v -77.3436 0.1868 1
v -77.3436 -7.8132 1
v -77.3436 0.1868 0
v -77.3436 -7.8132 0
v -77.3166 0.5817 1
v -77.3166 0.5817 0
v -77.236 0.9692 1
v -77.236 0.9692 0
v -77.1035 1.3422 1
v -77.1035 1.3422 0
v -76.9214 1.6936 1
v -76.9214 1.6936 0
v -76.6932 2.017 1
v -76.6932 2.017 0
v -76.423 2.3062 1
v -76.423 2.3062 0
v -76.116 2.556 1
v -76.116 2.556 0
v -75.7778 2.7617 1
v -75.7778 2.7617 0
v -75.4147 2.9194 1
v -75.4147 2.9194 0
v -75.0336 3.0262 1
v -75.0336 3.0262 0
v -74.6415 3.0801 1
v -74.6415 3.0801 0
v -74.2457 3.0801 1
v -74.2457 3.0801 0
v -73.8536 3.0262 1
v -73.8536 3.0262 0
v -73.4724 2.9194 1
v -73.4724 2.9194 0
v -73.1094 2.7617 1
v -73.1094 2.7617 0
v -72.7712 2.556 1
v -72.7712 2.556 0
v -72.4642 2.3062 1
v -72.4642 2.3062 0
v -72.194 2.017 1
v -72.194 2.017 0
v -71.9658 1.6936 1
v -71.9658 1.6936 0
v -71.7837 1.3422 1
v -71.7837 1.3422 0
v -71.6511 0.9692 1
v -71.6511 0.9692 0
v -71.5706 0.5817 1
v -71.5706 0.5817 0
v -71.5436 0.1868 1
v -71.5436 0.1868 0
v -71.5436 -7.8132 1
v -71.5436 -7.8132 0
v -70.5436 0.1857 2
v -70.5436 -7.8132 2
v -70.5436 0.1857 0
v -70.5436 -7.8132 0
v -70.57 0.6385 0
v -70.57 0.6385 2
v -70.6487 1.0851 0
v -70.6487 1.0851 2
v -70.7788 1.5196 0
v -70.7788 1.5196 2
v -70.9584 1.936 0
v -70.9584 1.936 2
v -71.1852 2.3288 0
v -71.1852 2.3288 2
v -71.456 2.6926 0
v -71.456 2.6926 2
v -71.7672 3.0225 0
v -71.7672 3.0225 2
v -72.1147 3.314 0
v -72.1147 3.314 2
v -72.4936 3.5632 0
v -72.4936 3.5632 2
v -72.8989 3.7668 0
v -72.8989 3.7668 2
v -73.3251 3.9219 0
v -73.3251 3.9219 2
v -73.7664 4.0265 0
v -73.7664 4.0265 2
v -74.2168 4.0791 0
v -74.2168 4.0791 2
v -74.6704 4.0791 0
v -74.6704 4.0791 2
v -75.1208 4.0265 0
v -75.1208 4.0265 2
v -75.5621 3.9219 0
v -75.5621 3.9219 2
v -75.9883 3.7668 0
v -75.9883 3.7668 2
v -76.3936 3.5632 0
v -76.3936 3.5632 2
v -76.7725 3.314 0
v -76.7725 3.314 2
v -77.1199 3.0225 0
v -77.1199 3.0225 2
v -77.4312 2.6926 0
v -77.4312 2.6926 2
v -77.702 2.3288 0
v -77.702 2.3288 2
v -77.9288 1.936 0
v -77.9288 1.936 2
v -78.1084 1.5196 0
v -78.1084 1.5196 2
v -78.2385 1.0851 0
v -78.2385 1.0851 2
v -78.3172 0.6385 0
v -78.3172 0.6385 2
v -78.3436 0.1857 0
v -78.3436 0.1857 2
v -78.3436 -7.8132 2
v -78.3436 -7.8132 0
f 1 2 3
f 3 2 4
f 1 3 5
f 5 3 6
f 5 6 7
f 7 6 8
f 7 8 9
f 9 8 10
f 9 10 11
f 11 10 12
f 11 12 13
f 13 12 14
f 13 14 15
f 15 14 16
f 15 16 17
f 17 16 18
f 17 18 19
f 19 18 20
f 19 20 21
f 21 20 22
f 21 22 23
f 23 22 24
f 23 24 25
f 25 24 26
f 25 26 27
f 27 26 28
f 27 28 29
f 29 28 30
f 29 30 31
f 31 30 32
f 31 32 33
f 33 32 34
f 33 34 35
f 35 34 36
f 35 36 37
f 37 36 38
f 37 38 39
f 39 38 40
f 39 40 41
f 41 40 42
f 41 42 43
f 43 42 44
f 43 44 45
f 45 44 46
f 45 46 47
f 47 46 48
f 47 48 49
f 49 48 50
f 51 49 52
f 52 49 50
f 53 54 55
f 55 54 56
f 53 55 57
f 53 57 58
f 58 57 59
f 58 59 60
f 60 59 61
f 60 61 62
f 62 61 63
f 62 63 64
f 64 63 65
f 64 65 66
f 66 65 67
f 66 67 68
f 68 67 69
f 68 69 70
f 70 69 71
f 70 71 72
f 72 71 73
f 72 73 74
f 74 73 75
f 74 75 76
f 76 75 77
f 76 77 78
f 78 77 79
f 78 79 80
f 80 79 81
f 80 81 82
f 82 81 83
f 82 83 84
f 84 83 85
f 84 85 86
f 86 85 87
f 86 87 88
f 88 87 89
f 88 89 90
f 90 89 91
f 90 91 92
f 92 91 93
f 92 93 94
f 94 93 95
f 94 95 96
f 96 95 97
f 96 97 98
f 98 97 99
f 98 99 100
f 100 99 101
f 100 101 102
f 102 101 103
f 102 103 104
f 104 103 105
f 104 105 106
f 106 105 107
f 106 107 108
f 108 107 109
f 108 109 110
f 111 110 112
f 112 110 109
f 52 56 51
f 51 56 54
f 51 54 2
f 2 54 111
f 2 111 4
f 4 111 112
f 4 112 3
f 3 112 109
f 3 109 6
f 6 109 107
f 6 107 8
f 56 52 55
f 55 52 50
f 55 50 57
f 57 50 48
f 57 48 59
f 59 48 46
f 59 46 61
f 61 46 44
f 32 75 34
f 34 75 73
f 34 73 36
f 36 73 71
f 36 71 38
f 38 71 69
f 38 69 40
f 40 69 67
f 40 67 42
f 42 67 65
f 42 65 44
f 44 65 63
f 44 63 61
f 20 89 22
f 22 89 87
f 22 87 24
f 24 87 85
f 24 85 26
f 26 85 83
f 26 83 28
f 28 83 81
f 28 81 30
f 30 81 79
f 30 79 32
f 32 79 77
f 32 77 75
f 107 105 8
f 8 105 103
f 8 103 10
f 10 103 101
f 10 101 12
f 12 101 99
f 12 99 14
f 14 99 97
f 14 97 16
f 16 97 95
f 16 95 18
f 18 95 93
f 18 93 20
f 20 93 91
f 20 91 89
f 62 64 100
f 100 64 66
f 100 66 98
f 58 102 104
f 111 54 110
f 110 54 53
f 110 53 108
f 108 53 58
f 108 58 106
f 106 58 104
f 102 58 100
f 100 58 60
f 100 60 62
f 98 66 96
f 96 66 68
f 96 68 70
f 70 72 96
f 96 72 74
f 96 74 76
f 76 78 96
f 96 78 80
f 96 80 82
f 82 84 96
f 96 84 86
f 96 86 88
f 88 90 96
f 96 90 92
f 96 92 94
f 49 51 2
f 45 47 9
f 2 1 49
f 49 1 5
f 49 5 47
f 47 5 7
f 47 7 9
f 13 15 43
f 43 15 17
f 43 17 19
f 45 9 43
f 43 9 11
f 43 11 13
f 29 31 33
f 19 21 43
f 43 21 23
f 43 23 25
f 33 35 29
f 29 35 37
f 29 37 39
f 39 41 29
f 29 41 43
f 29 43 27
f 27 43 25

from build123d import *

# Parameters (mm, degrees)
SALIENTE_EXTRUIR1_DEPTH = 1
SALIENTE_EXTRUIR2_DEPTH = 1


with BuildPart() as part:
    # Croquis1 → Saliente-Extruir1 (new body)
    with BuildSketch(Plane.XY):
        with BuildLine():
            Line((-77.34358908, -6.813189194), (-77.34358908, 0.186810806))
            ThreePointArc((-77.34358908, 0.186810806), (-74.44358908, 3.086810806), (-71.54358908, 0.186810806))
            Line((-71.54358908, 0.186810806), (-71.54358908, -6.813189194))
            Line((-71.54358908, -6.813189194), (-71.54358908, -7.813189194))
            Line((-71.54358908, -7.813189194), (-70.54358908, -7.813189194))
            Line((-70.54358908, -7.813189194), (-70.54358908, 0.185713536))
            ThreePointArc((-70.54358908, 0.185713536), (-74.44358908, 4.085713536), (-78.34358908, 0.185713536))
            Line((-78.34358908, 0.185713536), (-78.34358908, -7.813189194))
            Line((-78.34358908, -7.813189194), (-77.34358908, -7.813189194))
            Line((-77.34358908, -7.813189194), (-77.34358908, -6.813189194))
        make_face()
    extrude(amount=SALIENTE_EXTRUIR1_DEPTH)

    # Croquis3 → Saliente-Extruir2 (add)
    with BuildSketch(Plane.XY.offset(1)):
        with BuildLine():
            Line((-77.34358908, -7.813189194), (-78.34358908, -7.813189194))
            Line((-78.34358908, -7.813189194), (-78.34358908, 0.185713536))
            ThreePointArc((-78.34358908, 0.185713536), (-74.44358908, 4.085713536), (-70.54358908, 0.185713536))
            Line((-70.54358908, 0.185713536), (-70.54358908, -7.813189194))
            Line((-70.54358908, -7.813189194), (-77.34358908, -7.813189194))
        make_face()
    extrude(amount=SALIENTE_EXTRUIR2_DEPTH)


solid = part.part
